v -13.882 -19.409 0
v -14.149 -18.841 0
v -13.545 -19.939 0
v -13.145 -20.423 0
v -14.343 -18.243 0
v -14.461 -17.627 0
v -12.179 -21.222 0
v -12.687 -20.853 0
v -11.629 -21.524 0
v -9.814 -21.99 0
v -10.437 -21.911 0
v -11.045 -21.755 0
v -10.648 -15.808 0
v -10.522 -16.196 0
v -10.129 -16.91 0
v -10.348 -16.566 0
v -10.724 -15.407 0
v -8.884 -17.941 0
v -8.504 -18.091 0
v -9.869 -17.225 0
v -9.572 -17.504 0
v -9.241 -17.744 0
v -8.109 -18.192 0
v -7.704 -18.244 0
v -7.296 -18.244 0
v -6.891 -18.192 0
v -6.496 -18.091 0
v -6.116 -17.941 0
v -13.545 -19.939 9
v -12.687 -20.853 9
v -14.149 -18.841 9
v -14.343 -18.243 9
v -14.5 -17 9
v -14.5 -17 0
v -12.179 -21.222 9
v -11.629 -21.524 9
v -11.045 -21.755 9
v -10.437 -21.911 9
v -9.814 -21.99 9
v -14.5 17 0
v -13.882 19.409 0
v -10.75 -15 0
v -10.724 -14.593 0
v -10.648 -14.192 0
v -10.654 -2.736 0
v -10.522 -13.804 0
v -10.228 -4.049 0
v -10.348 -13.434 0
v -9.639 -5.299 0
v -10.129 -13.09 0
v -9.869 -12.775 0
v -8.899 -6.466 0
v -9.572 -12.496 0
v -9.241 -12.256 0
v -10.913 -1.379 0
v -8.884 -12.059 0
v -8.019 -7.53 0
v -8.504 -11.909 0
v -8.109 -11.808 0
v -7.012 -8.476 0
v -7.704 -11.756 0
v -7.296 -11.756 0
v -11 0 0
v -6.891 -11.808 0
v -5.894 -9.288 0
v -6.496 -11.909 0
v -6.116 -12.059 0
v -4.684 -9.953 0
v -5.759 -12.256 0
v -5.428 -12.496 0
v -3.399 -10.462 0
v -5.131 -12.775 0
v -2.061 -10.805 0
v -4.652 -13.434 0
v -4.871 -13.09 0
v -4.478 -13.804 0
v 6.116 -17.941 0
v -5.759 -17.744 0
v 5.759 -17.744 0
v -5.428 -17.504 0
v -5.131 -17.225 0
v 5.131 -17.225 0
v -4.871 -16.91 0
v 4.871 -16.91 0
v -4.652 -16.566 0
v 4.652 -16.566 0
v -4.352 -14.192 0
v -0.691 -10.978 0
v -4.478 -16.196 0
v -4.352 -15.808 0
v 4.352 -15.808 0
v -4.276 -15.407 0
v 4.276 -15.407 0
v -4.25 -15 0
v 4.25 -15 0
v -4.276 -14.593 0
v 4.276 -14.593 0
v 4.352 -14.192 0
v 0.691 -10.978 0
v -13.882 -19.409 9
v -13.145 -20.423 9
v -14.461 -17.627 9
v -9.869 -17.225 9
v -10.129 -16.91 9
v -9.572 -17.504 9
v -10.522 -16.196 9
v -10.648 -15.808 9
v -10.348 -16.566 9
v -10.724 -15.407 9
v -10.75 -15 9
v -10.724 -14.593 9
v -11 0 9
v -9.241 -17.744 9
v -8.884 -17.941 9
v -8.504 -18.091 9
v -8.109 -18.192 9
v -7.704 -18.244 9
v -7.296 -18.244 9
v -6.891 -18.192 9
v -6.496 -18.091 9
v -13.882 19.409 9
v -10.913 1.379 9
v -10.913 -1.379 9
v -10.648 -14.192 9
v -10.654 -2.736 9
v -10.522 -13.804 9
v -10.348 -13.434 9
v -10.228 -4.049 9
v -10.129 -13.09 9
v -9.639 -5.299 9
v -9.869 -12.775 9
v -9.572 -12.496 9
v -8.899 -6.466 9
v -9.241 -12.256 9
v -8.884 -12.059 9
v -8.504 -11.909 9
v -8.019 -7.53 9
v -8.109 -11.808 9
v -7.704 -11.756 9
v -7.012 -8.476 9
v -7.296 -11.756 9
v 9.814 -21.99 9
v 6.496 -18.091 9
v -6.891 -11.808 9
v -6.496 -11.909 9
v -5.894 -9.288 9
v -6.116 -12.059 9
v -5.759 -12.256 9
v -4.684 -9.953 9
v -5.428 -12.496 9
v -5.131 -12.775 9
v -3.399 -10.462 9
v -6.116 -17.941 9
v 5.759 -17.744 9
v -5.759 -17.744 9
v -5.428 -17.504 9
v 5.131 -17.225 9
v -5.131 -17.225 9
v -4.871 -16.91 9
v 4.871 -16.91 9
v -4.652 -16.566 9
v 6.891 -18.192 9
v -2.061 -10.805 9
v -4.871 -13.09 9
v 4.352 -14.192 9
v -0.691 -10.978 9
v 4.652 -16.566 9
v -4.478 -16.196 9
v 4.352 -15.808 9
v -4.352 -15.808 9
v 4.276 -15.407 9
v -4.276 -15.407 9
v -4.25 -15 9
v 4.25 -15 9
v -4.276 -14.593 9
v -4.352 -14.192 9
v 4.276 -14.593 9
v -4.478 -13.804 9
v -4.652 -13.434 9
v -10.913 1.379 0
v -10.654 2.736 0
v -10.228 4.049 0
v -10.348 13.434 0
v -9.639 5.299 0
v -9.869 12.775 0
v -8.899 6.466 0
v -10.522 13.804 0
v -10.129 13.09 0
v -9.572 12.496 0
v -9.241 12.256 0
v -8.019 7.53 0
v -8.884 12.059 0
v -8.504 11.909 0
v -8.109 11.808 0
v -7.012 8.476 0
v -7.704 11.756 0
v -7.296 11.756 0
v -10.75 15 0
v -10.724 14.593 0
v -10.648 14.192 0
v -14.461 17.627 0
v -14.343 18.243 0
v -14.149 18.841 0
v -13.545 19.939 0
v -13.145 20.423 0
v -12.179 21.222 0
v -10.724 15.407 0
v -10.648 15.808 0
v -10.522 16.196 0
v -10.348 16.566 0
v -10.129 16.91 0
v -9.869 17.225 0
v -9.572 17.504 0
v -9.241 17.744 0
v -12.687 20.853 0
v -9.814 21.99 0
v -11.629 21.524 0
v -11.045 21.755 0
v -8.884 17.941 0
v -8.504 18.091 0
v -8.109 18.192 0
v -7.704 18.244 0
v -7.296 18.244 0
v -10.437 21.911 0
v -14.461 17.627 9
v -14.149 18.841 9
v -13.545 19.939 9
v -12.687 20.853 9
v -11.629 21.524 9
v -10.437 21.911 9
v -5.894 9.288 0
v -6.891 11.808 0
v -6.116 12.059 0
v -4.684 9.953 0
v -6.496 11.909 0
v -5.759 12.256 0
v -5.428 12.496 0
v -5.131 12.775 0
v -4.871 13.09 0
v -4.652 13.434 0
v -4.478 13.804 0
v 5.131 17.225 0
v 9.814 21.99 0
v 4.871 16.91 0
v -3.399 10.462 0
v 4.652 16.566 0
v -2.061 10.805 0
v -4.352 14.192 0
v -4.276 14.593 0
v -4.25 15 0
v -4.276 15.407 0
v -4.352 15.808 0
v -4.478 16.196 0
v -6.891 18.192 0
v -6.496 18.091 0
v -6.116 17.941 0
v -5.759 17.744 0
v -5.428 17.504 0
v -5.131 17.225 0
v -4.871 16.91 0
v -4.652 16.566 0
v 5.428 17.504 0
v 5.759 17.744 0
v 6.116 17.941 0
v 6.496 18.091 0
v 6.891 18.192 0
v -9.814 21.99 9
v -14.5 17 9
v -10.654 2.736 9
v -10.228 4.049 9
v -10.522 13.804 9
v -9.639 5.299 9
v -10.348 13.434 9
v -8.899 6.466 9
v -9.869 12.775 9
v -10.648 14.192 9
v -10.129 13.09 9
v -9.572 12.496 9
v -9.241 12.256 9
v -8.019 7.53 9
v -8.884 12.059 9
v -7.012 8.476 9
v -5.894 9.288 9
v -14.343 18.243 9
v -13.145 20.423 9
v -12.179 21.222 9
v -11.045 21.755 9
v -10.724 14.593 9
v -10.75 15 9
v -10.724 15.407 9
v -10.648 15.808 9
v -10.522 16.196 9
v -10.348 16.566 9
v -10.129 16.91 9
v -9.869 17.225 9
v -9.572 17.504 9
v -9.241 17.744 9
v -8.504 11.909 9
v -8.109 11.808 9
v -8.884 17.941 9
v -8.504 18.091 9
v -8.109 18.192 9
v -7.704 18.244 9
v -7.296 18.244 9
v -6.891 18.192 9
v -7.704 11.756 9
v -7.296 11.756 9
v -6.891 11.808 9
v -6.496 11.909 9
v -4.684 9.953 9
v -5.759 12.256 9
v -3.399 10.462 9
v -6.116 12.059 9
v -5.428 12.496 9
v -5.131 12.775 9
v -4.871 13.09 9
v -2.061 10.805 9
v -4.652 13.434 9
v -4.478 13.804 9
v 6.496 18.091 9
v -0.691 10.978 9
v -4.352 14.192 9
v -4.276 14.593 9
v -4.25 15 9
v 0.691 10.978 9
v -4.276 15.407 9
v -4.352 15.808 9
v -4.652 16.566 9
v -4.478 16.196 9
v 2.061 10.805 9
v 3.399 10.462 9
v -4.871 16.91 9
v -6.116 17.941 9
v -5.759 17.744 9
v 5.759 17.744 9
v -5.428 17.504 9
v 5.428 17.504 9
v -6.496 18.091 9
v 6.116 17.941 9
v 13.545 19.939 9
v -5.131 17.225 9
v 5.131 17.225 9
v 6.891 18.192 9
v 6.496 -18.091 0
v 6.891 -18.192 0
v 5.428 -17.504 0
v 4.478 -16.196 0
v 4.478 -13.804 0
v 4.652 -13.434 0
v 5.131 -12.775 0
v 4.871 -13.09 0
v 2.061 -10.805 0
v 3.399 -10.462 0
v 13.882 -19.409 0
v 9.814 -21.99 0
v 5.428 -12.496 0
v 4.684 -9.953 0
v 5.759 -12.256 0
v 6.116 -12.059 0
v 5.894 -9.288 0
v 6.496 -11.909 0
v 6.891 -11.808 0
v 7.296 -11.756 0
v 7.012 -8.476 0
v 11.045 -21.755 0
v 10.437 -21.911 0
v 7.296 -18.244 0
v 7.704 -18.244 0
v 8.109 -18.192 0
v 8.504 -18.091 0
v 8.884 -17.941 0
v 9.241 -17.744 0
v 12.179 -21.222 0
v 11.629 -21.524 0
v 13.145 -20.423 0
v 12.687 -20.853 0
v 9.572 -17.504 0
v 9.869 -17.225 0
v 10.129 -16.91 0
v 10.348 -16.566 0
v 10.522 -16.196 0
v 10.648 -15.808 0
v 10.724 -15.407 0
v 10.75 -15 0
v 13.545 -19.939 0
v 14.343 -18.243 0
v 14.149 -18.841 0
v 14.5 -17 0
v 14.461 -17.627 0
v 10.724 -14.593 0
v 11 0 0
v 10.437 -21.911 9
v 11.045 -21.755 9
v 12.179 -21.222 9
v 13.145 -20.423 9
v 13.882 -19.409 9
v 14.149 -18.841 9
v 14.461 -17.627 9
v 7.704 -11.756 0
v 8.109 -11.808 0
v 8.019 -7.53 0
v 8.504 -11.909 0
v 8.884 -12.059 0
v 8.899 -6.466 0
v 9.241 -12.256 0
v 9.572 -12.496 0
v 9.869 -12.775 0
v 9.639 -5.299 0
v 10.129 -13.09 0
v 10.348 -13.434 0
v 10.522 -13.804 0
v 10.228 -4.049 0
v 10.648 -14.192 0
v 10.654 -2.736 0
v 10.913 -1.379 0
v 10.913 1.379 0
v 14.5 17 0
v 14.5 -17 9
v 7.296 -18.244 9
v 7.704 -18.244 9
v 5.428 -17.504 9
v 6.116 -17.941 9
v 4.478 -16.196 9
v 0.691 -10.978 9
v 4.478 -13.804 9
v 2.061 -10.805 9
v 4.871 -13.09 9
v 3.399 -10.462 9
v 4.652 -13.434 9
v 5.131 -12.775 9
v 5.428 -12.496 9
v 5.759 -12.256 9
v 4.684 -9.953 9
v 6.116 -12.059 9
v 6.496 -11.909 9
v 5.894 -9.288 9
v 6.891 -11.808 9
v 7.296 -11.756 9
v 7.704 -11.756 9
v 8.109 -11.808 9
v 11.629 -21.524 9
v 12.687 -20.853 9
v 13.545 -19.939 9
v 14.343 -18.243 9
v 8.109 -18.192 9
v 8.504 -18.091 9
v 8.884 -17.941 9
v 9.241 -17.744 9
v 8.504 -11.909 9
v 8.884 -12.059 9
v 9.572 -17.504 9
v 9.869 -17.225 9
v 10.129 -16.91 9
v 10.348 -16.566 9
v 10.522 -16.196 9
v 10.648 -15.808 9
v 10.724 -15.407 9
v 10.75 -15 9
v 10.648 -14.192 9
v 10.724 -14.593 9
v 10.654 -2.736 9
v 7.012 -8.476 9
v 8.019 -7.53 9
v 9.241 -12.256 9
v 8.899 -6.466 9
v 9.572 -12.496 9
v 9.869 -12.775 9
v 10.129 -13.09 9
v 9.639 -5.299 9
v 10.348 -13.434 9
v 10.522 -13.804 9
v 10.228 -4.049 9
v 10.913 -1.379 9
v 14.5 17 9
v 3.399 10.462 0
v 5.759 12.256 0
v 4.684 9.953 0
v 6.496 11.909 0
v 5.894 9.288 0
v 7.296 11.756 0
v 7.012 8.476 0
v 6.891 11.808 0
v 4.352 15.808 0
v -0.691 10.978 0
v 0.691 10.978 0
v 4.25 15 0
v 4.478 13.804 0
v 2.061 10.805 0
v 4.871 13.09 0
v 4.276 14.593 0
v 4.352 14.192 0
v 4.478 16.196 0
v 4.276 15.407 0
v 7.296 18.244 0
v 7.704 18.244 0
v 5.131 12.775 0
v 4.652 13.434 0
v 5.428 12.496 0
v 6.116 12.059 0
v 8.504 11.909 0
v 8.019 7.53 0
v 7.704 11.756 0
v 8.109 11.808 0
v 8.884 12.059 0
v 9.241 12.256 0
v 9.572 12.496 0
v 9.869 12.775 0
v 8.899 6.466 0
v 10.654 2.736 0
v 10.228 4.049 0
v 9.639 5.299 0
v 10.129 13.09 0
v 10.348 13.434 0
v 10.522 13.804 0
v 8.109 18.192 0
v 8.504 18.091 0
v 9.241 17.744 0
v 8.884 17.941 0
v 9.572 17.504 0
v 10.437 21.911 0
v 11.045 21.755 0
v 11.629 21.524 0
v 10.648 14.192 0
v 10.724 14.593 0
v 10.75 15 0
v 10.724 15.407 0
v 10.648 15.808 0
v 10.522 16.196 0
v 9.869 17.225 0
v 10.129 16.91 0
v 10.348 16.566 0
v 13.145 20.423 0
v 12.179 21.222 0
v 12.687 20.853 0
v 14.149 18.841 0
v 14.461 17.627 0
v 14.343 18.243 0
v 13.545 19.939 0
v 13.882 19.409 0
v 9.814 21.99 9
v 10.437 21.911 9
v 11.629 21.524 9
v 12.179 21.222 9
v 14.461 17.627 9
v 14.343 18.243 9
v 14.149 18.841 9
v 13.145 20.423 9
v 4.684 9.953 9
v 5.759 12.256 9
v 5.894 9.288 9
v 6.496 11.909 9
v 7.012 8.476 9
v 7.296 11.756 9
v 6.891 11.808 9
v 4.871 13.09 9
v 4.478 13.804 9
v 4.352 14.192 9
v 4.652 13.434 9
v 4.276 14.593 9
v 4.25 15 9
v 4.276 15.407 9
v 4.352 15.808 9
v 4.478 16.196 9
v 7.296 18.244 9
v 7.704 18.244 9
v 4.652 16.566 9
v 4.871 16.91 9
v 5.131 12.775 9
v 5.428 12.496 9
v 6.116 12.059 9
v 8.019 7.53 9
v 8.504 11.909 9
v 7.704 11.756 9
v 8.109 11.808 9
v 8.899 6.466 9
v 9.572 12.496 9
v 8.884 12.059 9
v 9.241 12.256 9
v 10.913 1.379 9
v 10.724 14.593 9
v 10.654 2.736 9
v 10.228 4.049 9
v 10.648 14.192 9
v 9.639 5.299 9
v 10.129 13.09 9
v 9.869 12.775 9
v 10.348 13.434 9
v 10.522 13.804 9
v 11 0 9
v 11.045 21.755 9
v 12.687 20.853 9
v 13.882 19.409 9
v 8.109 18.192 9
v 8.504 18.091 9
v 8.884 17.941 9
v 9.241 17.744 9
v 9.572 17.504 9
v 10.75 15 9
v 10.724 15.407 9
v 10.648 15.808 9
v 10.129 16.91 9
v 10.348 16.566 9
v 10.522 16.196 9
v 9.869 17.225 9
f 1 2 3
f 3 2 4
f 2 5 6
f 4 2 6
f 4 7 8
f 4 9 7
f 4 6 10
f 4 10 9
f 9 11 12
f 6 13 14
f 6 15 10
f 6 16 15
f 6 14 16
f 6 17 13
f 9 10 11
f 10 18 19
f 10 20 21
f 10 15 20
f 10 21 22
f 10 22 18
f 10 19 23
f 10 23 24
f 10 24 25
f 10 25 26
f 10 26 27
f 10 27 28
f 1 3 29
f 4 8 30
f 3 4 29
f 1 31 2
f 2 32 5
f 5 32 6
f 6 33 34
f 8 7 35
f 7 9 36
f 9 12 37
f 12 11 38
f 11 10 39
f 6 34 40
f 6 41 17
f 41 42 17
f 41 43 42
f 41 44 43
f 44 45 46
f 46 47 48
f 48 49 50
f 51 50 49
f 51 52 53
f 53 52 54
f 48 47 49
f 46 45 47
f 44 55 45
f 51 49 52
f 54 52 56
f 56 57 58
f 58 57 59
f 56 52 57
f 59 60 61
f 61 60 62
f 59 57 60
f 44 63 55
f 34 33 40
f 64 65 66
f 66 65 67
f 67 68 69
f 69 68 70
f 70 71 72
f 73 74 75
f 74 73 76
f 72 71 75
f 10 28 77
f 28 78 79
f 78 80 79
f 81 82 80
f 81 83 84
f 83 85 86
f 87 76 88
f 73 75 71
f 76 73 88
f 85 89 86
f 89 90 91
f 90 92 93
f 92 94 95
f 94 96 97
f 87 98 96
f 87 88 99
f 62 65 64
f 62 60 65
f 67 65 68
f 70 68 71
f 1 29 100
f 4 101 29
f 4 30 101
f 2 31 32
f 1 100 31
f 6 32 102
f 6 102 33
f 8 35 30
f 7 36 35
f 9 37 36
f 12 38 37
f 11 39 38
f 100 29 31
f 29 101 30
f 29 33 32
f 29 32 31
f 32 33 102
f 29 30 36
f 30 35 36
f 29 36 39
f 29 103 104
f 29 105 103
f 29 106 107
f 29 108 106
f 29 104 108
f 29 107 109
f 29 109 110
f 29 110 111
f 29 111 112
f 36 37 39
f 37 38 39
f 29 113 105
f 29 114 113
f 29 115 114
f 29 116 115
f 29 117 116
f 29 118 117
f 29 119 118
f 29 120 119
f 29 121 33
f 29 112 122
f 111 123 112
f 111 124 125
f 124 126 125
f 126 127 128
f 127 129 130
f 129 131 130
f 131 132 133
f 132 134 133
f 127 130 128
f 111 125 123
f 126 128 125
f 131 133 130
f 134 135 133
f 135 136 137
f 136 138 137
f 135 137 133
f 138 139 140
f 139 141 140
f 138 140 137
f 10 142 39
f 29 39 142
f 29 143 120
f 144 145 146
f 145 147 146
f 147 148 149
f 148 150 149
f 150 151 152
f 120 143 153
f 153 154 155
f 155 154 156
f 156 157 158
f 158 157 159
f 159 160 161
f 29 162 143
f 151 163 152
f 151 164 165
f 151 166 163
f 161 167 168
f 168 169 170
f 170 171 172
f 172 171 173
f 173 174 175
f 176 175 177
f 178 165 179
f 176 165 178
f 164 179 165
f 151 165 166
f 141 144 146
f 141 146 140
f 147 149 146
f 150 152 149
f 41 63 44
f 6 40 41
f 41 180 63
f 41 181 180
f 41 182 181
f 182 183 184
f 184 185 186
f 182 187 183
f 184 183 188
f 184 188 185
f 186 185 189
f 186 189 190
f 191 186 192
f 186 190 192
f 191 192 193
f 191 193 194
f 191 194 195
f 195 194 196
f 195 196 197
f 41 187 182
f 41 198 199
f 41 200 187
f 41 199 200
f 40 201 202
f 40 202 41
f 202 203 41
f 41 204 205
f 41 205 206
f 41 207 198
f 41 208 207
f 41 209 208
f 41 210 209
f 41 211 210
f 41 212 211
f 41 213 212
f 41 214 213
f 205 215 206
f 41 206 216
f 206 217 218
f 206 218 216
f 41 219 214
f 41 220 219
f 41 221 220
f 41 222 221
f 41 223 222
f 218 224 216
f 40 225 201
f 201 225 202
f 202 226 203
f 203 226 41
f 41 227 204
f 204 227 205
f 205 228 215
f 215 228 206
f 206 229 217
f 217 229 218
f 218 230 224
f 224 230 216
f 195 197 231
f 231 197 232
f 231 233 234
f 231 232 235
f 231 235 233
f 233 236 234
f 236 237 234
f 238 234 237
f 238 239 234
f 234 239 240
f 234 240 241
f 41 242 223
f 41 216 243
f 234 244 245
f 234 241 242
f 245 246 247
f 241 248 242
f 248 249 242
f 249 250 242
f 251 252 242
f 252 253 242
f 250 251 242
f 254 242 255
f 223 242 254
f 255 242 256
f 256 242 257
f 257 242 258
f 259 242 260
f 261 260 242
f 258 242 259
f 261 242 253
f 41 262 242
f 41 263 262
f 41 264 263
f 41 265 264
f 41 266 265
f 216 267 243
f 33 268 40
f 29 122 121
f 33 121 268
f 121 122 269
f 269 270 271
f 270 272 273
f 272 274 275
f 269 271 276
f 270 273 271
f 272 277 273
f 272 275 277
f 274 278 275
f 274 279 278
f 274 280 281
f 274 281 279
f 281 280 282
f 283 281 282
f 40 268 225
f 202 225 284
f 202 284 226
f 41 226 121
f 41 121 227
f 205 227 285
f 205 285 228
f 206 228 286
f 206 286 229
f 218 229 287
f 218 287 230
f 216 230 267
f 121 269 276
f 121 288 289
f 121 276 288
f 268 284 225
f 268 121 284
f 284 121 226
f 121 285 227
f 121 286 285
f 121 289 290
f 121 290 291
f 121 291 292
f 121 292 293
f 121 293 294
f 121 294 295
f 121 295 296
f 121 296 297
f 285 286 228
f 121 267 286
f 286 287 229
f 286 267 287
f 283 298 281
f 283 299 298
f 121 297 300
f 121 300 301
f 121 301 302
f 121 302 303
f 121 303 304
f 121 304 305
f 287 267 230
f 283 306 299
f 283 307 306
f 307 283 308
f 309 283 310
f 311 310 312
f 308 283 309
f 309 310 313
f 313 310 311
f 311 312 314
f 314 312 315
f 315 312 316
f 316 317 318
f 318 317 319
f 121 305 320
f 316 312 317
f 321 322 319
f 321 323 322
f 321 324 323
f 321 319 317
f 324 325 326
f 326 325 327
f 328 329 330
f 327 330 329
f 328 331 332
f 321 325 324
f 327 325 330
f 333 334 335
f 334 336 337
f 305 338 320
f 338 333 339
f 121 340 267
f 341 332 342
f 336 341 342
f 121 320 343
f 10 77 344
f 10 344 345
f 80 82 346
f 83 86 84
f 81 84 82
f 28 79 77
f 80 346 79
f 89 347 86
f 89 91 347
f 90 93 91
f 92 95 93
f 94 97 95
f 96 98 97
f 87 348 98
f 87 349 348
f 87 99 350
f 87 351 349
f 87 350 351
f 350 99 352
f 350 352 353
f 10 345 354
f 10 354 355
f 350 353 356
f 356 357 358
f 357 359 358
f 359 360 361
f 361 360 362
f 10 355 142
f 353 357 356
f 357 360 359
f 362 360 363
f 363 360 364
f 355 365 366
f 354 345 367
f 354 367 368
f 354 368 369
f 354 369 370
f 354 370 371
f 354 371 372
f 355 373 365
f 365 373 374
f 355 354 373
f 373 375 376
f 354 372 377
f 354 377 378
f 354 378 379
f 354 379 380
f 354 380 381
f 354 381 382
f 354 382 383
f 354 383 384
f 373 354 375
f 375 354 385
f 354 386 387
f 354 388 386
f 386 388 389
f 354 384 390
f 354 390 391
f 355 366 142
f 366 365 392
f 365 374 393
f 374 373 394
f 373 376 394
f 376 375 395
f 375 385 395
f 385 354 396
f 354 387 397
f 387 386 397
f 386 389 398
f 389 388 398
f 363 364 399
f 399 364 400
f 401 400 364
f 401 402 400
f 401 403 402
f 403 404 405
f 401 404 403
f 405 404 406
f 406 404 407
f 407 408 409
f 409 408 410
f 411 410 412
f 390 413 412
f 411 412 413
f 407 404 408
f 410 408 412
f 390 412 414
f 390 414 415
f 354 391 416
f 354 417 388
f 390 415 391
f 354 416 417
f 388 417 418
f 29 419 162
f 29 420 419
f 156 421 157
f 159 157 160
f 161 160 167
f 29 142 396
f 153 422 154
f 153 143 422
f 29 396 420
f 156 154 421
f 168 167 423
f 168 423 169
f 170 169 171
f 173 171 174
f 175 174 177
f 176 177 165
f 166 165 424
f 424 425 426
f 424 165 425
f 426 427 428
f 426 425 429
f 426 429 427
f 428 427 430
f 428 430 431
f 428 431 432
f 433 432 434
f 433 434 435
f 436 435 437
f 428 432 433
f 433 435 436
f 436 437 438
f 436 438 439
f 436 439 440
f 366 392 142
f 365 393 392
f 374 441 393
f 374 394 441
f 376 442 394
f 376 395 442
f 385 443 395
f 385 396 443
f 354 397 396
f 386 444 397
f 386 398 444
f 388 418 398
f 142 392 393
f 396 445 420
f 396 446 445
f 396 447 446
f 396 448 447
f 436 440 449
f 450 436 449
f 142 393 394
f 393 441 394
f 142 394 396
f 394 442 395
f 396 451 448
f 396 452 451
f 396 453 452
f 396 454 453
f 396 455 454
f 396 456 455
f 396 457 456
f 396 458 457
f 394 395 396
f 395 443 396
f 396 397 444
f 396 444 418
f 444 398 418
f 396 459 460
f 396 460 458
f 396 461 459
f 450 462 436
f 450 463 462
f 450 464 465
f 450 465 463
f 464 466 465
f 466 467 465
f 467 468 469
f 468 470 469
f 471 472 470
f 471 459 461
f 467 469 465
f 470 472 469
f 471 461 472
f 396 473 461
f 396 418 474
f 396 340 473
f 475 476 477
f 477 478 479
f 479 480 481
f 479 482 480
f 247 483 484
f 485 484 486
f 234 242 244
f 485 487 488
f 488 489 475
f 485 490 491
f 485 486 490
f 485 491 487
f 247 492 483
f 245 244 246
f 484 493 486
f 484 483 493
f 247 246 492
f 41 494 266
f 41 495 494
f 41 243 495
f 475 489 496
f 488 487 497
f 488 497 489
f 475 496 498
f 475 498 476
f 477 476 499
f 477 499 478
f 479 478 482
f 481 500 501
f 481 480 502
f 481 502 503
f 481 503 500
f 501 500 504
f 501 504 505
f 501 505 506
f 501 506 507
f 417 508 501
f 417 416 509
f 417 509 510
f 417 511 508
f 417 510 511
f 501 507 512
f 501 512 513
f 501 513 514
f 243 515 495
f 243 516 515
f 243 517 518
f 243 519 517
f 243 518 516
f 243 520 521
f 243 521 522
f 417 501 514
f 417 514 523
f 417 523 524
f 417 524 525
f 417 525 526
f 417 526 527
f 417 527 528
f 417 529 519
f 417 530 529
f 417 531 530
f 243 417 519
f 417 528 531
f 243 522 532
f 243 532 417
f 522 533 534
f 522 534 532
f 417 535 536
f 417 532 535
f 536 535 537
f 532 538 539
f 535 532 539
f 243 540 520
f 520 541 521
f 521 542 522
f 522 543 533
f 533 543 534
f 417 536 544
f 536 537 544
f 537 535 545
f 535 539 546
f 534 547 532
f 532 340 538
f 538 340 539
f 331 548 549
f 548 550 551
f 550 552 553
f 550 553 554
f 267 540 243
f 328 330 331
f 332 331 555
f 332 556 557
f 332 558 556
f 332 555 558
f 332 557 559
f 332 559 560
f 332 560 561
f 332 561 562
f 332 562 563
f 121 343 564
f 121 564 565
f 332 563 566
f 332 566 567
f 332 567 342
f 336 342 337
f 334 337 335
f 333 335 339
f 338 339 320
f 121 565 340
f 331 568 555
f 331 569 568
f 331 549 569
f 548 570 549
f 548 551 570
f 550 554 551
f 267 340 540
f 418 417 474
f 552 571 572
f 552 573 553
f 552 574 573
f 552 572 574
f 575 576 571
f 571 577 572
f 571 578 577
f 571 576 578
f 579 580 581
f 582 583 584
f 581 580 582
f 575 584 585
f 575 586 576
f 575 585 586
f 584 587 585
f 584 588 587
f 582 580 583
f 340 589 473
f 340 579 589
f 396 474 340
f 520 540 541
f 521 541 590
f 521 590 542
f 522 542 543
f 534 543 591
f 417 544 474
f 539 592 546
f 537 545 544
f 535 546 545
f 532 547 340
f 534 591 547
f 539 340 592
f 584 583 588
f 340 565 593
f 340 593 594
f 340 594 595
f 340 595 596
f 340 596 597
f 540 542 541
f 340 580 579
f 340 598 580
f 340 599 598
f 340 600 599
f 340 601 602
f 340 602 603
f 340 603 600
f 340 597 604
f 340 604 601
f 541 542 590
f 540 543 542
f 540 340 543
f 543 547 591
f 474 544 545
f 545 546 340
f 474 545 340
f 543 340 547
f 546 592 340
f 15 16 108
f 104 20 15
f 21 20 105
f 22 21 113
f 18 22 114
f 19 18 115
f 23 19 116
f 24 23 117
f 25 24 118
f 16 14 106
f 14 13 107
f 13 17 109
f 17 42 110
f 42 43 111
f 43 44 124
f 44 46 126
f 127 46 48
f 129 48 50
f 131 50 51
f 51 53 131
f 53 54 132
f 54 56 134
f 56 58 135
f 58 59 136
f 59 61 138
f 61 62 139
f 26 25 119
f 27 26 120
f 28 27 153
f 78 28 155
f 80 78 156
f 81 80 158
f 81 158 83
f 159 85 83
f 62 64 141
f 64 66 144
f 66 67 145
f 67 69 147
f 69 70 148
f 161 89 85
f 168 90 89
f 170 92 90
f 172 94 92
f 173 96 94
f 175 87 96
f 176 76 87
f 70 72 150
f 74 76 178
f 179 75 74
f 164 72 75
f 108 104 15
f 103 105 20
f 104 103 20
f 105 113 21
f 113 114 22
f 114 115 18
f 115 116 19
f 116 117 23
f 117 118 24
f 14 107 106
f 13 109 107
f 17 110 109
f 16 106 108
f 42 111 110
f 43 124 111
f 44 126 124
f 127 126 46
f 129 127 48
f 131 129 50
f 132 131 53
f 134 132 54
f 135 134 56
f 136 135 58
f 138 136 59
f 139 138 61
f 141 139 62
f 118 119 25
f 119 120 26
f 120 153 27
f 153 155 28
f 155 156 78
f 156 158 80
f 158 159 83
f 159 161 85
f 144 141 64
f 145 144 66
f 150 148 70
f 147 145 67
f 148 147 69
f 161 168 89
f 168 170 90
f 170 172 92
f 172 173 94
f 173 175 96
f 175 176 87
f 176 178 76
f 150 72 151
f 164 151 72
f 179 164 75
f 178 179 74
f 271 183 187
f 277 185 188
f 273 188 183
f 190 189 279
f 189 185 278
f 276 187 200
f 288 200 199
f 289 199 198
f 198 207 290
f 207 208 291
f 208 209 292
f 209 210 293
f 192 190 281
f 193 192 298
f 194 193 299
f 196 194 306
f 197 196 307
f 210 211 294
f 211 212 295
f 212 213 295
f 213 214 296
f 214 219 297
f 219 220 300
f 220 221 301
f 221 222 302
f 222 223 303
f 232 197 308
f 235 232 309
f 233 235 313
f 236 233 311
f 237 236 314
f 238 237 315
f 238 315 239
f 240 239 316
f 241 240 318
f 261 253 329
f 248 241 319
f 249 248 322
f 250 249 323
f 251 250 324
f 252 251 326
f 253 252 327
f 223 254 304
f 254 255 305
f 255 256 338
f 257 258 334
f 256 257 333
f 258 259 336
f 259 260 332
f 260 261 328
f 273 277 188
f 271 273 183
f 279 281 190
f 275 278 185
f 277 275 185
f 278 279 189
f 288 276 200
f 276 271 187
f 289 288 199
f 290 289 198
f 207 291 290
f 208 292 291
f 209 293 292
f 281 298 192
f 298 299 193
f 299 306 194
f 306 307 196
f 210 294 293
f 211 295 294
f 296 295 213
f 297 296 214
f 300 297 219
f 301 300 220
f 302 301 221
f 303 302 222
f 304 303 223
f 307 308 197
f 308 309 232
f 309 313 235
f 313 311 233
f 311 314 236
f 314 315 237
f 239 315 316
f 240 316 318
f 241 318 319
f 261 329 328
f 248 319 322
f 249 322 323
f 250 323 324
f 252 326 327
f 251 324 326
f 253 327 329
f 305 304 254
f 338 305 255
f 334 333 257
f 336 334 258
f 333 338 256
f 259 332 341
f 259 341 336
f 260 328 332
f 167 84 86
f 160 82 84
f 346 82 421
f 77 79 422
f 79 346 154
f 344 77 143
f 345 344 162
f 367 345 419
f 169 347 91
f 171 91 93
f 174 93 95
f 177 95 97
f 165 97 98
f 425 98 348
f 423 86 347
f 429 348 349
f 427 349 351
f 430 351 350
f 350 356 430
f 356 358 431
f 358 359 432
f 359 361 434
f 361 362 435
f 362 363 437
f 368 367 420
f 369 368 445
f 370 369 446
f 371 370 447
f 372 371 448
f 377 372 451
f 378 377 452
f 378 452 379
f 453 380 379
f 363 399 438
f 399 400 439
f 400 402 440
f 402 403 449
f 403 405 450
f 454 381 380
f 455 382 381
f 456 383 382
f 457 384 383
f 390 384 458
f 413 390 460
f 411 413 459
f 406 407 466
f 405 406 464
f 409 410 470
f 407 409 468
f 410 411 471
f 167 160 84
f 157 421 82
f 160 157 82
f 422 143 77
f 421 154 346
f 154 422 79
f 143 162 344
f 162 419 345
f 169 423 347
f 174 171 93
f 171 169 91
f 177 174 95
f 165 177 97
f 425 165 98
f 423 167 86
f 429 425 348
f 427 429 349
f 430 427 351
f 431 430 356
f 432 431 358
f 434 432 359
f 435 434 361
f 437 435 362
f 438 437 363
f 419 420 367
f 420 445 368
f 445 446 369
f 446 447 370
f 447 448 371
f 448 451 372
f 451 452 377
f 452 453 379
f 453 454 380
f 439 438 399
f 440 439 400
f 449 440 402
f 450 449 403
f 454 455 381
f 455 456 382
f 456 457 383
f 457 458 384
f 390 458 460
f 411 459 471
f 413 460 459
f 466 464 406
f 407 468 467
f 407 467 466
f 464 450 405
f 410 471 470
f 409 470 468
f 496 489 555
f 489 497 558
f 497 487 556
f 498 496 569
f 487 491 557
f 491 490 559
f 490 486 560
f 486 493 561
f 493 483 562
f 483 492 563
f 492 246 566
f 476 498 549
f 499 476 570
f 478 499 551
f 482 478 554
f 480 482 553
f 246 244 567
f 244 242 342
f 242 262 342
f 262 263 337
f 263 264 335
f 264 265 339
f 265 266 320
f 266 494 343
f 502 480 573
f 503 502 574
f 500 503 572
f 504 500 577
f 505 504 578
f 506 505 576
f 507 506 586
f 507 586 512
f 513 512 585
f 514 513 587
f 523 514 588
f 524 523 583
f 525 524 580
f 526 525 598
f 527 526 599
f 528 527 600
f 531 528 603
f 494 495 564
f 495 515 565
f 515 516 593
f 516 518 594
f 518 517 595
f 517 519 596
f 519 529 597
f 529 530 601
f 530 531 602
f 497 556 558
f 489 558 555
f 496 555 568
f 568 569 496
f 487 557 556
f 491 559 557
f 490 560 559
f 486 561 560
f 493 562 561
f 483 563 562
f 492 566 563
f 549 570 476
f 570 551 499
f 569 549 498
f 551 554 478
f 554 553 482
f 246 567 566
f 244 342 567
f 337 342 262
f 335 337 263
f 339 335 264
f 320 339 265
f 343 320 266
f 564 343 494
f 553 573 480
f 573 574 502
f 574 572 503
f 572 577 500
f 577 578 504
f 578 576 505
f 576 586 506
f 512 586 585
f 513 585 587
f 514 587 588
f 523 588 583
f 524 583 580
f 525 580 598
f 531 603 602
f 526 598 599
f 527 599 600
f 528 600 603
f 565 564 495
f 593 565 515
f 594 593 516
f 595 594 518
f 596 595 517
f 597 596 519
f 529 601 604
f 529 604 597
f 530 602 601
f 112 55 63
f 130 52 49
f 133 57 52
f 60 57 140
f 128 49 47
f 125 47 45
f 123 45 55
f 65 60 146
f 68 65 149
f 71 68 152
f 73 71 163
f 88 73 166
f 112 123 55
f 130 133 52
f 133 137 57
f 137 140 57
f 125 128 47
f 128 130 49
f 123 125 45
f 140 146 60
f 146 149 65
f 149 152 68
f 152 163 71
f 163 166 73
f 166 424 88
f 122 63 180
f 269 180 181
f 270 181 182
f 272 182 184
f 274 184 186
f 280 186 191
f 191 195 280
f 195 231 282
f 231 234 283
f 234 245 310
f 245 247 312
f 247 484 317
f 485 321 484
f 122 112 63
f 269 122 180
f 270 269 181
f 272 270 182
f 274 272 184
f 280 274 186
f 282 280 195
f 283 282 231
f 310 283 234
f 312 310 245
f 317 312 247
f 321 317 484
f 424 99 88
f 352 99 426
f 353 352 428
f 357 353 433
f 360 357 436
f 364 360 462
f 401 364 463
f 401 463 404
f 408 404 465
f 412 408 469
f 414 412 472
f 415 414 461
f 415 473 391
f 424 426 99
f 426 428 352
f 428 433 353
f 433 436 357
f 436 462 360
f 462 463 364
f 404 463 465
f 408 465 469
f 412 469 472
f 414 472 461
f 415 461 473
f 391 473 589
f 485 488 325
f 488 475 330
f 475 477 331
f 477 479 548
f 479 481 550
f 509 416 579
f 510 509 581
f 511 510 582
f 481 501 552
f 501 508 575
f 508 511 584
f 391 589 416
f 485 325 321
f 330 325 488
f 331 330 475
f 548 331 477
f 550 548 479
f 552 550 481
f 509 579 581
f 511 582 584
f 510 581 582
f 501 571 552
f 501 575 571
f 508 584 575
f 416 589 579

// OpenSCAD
$fn = 50;

difference() {
	union() {
		hull() {
			translate(v = [-9.5, 17.0, 0]) {
				cylinder(h = 9, r = 5);
			}
			translate(v = [9.5, 17.0, 0]) {
				cylinder(h = 9, r = 5);
			}
			translate(v = [-9.5, -17.0, 0]) {
				cylinder(h = 9, r = 5);
			}
			translate(v = [9.5, -17.0, 0]) {
				cylinder(h = 9, r = 5);
			}
		}
	}
	union() {
		translate(v = [-7.5, -15.0, 0]) {
			cylinder(h = 9, r = 3.25);
		}
		translate(v = [-7.5, 15.0, 0]) {
			cylinder(h = 9, r = 3.25);
		}
		translate(v = [7.5, -15.0, 0]) {
			cylinder(h = 9, r = 3.25);
		}
		translate(v = [7.5, 15.0, 0]) {
			cylinder(h = 9, r = 3.25);
		}
		cylinder(h = 9, r = 11.0);
	}
}
